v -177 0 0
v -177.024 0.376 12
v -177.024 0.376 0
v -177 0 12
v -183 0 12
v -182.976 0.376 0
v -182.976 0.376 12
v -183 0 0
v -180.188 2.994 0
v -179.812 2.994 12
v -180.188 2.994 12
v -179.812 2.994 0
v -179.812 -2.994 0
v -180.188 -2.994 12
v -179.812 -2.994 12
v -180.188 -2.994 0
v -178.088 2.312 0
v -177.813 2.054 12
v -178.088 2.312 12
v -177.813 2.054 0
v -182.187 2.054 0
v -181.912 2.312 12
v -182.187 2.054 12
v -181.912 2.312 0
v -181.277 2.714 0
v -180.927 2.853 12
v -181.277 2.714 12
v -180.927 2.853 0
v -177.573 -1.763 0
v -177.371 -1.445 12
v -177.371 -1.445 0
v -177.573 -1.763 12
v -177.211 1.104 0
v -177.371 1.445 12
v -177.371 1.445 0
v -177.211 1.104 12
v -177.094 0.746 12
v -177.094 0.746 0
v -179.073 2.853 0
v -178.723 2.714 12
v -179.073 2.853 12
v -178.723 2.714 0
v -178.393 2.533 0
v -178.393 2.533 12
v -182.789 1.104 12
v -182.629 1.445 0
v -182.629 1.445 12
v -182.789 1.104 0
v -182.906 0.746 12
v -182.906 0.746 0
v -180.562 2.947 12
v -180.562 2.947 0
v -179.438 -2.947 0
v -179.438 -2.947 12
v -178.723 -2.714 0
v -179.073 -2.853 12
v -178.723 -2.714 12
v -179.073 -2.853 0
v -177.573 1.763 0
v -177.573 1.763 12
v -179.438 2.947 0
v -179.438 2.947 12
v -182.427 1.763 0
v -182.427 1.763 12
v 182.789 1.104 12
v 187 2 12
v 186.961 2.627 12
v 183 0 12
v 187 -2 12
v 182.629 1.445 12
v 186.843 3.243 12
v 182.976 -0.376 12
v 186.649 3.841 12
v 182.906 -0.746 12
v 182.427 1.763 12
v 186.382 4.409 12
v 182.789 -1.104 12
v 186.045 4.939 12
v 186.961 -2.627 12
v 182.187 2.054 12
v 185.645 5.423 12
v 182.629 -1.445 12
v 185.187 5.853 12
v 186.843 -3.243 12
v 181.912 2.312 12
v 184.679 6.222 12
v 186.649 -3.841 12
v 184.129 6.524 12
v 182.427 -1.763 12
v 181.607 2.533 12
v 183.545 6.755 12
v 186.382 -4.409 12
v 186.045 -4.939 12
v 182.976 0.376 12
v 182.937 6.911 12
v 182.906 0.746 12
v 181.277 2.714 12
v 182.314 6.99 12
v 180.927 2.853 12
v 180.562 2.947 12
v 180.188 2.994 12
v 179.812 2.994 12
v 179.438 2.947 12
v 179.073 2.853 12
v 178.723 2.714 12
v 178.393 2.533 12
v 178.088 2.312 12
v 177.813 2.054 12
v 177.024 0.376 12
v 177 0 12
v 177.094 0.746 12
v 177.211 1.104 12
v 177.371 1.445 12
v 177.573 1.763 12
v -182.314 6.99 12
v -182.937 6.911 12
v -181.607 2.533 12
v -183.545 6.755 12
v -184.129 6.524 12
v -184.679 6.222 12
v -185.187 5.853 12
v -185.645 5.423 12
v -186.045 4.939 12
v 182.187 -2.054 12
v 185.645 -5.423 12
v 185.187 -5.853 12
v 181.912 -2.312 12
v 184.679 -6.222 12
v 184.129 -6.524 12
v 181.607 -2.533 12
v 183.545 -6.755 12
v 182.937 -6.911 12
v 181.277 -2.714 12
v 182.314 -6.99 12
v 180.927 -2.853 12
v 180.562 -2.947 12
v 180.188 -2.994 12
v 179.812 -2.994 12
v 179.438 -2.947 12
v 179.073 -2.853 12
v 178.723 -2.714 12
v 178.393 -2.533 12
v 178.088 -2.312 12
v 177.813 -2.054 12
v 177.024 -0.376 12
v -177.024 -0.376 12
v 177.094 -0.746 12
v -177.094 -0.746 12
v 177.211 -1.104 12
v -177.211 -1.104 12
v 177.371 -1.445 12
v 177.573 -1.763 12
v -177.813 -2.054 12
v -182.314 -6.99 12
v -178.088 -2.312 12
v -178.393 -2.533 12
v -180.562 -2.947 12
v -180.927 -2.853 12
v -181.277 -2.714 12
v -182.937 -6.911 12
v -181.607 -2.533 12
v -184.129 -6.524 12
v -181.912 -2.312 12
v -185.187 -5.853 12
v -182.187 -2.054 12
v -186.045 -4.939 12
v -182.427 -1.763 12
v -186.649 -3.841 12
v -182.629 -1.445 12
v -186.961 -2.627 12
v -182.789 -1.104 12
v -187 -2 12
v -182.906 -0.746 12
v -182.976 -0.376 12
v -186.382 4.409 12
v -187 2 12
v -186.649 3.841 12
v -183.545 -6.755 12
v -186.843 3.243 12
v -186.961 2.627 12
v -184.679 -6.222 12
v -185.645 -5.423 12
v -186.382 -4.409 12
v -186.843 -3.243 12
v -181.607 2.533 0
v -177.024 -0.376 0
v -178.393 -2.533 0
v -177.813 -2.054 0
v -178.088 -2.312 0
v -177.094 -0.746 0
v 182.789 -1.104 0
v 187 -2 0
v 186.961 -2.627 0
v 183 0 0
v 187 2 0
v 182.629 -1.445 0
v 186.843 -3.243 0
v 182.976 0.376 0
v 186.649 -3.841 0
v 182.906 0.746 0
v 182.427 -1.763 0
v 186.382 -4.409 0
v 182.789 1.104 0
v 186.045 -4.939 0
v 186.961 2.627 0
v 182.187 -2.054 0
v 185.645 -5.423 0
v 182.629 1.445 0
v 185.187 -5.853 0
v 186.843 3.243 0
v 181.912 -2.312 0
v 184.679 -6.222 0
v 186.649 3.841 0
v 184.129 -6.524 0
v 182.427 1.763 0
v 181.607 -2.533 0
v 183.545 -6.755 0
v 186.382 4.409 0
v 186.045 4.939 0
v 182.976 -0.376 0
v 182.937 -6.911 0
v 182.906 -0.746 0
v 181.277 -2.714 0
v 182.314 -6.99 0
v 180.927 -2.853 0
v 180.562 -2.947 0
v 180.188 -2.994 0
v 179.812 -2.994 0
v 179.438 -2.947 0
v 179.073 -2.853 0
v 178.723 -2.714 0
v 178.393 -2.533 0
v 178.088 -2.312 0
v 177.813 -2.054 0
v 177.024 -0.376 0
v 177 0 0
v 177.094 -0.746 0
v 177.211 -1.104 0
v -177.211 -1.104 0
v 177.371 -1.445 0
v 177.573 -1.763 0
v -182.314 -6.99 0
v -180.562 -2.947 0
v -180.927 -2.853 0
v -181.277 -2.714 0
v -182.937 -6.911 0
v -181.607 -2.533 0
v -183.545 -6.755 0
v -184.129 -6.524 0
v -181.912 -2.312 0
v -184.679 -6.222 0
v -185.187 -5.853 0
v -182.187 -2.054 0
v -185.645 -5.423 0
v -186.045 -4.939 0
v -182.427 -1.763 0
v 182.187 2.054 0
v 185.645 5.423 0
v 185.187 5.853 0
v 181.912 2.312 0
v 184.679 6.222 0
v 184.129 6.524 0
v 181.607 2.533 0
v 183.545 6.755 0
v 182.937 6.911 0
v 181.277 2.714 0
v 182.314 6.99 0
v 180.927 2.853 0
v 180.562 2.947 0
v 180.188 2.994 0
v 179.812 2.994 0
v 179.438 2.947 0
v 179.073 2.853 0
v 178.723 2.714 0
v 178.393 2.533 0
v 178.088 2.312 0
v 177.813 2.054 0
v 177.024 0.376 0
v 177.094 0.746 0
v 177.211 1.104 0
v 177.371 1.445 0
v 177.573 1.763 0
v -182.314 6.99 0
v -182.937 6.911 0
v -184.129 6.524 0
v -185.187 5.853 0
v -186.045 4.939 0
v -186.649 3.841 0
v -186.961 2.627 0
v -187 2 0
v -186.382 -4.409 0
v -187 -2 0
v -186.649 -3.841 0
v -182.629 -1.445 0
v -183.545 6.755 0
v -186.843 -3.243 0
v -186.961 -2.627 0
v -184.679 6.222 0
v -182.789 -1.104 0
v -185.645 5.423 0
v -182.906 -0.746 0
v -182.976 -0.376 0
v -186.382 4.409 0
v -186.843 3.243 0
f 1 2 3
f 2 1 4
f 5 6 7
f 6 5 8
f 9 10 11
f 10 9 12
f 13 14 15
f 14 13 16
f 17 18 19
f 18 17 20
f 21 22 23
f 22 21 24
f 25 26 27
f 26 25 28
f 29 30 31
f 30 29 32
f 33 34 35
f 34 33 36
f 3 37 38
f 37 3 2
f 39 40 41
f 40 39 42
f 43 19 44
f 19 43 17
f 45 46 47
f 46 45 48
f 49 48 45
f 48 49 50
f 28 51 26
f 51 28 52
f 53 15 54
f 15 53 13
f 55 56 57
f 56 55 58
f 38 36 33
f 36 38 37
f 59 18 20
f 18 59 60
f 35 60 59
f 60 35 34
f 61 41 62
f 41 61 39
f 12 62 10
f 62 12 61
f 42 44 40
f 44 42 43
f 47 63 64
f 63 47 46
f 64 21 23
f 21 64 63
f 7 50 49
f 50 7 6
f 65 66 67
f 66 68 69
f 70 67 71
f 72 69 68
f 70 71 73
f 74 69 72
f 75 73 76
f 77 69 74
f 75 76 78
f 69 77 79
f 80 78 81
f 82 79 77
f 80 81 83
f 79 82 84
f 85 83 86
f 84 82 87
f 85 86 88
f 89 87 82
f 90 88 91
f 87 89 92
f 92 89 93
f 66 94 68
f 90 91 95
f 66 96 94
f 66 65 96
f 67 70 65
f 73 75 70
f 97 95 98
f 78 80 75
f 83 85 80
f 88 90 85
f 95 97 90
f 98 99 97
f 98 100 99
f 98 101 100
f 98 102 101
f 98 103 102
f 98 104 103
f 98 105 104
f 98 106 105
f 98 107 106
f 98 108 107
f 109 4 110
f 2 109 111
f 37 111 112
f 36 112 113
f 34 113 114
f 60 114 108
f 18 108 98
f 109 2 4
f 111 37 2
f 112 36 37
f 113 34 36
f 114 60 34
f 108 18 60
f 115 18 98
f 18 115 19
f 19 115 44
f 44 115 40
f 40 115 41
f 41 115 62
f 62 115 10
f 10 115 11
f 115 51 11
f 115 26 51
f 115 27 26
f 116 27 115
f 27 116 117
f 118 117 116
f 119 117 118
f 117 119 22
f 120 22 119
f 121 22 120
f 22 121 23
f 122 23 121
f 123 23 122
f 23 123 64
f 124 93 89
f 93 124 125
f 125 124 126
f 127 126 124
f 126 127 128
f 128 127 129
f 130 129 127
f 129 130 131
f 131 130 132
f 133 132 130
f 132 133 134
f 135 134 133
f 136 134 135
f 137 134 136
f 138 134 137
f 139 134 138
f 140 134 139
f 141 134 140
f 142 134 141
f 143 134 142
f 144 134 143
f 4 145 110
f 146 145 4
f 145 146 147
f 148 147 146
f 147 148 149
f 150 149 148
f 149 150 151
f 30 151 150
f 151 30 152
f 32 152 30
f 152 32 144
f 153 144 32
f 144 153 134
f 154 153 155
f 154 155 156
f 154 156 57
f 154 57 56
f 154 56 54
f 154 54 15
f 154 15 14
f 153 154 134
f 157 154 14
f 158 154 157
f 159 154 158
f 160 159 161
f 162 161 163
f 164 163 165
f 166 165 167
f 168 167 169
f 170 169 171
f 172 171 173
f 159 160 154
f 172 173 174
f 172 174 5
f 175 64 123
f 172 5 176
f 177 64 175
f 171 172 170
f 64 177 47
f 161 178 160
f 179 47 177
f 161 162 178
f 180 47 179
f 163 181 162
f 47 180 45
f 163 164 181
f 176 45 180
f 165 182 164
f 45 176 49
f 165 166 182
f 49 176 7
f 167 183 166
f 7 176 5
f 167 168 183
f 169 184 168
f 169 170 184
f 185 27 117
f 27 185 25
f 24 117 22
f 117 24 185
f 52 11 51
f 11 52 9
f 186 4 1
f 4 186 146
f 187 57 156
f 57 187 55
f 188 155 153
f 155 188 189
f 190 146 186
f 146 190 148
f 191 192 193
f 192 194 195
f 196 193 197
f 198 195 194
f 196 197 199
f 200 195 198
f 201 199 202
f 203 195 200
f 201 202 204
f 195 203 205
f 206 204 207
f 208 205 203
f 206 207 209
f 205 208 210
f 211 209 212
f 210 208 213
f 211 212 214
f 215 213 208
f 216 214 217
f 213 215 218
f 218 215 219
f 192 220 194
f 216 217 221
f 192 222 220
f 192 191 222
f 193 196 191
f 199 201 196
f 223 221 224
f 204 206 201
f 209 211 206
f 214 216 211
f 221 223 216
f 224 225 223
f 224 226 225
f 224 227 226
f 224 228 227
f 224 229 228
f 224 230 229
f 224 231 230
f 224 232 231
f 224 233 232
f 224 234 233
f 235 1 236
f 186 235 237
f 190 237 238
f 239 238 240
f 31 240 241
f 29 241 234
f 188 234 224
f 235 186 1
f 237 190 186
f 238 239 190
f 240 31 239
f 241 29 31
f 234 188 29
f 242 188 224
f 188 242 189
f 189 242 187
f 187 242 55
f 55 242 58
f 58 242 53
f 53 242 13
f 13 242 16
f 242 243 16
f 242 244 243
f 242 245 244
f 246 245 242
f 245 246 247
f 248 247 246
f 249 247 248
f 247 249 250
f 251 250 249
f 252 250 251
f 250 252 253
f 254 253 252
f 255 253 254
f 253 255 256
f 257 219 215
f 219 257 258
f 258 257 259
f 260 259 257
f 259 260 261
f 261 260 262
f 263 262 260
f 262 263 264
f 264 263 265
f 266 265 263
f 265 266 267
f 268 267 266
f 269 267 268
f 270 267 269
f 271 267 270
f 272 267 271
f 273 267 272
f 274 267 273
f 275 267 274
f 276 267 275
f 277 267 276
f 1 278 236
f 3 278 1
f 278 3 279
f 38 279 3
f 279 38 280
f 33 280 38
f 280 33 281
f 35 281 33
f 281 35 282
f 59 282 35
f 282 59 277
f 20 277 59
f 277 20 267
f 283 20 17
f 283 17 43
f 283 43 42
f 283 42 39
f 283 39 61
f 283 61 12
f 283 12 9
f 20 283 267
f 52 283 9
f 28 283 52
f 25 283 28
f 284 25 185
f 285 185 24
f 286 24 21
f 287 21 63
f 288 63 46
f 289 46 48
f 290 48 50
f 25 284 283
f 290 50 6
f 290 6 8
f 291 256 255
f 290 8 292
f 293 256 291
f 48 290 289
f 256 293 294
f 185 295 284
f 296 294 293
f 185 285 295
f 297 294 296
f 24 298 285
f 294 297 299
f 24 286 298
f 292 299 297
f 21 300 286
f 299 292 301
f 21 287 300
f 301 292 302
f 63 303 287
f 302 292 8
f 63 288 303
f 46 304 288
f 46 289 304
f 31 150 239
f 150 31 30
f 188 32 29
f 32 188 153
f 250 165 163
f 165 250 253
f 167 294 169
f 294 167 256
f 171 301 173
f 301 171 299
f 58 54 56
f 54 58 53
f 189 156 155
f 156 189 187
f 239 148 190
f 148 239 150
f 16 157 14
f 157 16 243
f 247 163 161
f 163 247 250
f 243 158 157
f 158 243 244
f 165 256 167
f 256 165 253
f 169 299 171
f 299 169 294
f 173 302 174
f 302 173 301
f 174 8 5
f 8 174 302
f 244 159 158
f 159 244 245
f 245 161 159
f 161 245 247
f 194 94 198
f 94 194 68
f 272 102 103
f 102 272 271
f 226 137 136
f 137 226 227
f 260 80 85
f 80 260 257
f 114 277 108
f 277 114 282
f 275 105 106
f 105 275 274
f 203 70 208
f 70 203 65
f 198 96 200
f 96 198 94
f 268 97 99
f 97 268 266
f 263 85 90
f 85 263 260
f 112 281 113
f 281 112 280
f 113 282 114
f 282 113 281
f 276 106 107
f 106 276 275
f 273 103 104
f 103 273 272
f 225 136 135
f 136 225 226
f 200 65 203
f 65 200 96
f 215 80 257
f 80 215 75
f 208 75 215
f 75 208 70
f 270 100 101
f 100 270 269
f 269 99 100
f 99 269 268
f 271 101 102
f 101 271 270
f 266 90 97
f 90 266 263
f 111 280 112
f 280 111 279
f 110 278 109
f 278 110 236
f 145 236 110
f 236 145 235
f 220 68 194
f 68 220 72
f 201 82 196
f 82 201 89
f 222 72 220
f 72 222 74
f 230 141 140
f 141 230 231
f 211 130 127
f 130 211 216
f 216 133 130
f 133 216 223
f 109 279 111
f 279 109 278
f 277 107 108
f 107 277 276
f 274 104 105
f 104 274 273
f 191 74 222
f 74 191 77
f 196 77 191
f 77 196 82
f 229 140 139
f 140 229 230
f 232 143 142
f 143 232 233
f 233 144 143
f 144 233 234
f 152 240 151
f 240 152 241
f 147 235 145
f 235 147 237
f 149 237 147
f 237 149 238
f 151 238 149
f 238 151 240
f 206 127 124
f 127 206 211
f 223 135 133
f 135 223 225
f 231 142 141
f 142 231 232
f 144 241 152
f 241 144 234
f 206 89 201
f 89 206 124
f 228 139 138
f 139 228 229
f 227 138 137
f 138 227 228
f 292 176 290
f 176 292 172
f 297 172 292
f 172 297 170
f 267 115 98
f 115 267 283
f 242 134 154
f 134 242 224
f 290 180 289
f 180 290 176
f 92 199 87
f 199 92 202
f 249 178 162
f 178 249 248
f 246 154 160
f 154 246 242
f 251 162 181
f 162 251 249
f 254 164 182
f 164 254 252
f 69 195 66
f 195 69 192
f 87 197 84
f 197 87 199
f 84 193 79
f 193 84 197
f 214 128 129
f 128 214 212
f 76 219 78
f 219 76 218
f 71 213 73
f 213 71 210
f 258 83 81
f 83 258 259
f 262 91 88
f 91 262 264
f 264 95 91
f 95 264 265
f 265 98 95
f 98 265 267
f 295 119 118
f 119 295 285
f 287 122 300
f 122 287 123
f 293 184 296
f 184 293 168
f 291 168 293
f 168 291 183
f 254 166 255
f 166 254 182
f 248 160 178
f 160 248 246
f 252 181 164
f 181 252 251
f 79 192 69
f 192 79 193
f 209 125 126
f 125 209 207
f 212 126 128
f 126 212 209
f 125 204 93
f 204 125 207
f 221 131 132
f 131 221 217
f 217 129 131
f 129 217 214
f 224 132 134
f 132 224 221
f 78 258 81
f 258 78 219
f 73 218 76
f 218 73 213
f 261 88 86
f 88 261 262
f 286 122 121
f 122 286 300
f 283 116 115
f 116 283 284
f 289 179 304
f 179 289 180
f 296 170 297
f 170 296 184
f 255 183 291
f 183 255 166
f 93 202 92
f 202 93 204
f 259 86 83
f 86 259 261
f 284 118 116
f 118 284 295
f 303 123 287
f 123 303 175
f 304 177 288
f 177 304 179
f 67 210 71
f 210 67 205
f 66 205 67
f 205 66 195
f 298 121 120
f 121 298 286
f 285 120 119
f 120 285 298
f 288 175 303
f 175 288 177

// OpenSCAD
$fn = 50;


difference() {
	union() {
		hull() {
			translate(v = [-182.0000000000, 2.0000000000, 0]) {
				cylinder(h = 12, r = 5);
			}
			translate(v = [182.0000000000, 2.0000000000, 0]) {
				cylinder(h = 12, r = 5);
			}
			translate(v = [-182.0000000000, -2.0000000000, 0]) {
				cylinder(h = 12, r = 5);
			}
			translate(v = [182.0000000000, -2.0000000000, 0]) {
				cylinder(h = 12, r = 5);
			}
		}
	}
	union() {
		translate(v = [-180.0000000000, 0.0000000000, 0]) {
			cylinder(h = 12, r = 3.0000000000);
		}
		translate(v = [180.0000000000, 0.0000000000, 0]) {
			cylinder(h = 12, r = 3.0000000000);
		}
		translate(v = [-180.0000000000, 0.0000000000, 0]) {
			cylinder(h = 12, r = 1.5000000000);
		}
		translate(v = [180.0000000000, 0.0000000000, 0]) {
			cylinder(h = 12, r = 1.5000000000);
		}
		translate(v = [-180.0000000000, 0.0000000000, 0]) {
			cylinder(h = 12, r = 1.5000000000);
		}
		translate(v = [180.0000000000, 0.0000000000, 0]) {
			cylinder(h = 12, r = 1.5000000000);
		}
		translate(v = [-180.0000000000, 0.0000000000, 0]) {
			cylinder(h = 12, r = 1.5000000000);
		}
		translate(v = [180.0000000000, 0.0000000000, 0]) {
			cylinder(h = 12, r = 1.5000000000);
		}
	}
}
